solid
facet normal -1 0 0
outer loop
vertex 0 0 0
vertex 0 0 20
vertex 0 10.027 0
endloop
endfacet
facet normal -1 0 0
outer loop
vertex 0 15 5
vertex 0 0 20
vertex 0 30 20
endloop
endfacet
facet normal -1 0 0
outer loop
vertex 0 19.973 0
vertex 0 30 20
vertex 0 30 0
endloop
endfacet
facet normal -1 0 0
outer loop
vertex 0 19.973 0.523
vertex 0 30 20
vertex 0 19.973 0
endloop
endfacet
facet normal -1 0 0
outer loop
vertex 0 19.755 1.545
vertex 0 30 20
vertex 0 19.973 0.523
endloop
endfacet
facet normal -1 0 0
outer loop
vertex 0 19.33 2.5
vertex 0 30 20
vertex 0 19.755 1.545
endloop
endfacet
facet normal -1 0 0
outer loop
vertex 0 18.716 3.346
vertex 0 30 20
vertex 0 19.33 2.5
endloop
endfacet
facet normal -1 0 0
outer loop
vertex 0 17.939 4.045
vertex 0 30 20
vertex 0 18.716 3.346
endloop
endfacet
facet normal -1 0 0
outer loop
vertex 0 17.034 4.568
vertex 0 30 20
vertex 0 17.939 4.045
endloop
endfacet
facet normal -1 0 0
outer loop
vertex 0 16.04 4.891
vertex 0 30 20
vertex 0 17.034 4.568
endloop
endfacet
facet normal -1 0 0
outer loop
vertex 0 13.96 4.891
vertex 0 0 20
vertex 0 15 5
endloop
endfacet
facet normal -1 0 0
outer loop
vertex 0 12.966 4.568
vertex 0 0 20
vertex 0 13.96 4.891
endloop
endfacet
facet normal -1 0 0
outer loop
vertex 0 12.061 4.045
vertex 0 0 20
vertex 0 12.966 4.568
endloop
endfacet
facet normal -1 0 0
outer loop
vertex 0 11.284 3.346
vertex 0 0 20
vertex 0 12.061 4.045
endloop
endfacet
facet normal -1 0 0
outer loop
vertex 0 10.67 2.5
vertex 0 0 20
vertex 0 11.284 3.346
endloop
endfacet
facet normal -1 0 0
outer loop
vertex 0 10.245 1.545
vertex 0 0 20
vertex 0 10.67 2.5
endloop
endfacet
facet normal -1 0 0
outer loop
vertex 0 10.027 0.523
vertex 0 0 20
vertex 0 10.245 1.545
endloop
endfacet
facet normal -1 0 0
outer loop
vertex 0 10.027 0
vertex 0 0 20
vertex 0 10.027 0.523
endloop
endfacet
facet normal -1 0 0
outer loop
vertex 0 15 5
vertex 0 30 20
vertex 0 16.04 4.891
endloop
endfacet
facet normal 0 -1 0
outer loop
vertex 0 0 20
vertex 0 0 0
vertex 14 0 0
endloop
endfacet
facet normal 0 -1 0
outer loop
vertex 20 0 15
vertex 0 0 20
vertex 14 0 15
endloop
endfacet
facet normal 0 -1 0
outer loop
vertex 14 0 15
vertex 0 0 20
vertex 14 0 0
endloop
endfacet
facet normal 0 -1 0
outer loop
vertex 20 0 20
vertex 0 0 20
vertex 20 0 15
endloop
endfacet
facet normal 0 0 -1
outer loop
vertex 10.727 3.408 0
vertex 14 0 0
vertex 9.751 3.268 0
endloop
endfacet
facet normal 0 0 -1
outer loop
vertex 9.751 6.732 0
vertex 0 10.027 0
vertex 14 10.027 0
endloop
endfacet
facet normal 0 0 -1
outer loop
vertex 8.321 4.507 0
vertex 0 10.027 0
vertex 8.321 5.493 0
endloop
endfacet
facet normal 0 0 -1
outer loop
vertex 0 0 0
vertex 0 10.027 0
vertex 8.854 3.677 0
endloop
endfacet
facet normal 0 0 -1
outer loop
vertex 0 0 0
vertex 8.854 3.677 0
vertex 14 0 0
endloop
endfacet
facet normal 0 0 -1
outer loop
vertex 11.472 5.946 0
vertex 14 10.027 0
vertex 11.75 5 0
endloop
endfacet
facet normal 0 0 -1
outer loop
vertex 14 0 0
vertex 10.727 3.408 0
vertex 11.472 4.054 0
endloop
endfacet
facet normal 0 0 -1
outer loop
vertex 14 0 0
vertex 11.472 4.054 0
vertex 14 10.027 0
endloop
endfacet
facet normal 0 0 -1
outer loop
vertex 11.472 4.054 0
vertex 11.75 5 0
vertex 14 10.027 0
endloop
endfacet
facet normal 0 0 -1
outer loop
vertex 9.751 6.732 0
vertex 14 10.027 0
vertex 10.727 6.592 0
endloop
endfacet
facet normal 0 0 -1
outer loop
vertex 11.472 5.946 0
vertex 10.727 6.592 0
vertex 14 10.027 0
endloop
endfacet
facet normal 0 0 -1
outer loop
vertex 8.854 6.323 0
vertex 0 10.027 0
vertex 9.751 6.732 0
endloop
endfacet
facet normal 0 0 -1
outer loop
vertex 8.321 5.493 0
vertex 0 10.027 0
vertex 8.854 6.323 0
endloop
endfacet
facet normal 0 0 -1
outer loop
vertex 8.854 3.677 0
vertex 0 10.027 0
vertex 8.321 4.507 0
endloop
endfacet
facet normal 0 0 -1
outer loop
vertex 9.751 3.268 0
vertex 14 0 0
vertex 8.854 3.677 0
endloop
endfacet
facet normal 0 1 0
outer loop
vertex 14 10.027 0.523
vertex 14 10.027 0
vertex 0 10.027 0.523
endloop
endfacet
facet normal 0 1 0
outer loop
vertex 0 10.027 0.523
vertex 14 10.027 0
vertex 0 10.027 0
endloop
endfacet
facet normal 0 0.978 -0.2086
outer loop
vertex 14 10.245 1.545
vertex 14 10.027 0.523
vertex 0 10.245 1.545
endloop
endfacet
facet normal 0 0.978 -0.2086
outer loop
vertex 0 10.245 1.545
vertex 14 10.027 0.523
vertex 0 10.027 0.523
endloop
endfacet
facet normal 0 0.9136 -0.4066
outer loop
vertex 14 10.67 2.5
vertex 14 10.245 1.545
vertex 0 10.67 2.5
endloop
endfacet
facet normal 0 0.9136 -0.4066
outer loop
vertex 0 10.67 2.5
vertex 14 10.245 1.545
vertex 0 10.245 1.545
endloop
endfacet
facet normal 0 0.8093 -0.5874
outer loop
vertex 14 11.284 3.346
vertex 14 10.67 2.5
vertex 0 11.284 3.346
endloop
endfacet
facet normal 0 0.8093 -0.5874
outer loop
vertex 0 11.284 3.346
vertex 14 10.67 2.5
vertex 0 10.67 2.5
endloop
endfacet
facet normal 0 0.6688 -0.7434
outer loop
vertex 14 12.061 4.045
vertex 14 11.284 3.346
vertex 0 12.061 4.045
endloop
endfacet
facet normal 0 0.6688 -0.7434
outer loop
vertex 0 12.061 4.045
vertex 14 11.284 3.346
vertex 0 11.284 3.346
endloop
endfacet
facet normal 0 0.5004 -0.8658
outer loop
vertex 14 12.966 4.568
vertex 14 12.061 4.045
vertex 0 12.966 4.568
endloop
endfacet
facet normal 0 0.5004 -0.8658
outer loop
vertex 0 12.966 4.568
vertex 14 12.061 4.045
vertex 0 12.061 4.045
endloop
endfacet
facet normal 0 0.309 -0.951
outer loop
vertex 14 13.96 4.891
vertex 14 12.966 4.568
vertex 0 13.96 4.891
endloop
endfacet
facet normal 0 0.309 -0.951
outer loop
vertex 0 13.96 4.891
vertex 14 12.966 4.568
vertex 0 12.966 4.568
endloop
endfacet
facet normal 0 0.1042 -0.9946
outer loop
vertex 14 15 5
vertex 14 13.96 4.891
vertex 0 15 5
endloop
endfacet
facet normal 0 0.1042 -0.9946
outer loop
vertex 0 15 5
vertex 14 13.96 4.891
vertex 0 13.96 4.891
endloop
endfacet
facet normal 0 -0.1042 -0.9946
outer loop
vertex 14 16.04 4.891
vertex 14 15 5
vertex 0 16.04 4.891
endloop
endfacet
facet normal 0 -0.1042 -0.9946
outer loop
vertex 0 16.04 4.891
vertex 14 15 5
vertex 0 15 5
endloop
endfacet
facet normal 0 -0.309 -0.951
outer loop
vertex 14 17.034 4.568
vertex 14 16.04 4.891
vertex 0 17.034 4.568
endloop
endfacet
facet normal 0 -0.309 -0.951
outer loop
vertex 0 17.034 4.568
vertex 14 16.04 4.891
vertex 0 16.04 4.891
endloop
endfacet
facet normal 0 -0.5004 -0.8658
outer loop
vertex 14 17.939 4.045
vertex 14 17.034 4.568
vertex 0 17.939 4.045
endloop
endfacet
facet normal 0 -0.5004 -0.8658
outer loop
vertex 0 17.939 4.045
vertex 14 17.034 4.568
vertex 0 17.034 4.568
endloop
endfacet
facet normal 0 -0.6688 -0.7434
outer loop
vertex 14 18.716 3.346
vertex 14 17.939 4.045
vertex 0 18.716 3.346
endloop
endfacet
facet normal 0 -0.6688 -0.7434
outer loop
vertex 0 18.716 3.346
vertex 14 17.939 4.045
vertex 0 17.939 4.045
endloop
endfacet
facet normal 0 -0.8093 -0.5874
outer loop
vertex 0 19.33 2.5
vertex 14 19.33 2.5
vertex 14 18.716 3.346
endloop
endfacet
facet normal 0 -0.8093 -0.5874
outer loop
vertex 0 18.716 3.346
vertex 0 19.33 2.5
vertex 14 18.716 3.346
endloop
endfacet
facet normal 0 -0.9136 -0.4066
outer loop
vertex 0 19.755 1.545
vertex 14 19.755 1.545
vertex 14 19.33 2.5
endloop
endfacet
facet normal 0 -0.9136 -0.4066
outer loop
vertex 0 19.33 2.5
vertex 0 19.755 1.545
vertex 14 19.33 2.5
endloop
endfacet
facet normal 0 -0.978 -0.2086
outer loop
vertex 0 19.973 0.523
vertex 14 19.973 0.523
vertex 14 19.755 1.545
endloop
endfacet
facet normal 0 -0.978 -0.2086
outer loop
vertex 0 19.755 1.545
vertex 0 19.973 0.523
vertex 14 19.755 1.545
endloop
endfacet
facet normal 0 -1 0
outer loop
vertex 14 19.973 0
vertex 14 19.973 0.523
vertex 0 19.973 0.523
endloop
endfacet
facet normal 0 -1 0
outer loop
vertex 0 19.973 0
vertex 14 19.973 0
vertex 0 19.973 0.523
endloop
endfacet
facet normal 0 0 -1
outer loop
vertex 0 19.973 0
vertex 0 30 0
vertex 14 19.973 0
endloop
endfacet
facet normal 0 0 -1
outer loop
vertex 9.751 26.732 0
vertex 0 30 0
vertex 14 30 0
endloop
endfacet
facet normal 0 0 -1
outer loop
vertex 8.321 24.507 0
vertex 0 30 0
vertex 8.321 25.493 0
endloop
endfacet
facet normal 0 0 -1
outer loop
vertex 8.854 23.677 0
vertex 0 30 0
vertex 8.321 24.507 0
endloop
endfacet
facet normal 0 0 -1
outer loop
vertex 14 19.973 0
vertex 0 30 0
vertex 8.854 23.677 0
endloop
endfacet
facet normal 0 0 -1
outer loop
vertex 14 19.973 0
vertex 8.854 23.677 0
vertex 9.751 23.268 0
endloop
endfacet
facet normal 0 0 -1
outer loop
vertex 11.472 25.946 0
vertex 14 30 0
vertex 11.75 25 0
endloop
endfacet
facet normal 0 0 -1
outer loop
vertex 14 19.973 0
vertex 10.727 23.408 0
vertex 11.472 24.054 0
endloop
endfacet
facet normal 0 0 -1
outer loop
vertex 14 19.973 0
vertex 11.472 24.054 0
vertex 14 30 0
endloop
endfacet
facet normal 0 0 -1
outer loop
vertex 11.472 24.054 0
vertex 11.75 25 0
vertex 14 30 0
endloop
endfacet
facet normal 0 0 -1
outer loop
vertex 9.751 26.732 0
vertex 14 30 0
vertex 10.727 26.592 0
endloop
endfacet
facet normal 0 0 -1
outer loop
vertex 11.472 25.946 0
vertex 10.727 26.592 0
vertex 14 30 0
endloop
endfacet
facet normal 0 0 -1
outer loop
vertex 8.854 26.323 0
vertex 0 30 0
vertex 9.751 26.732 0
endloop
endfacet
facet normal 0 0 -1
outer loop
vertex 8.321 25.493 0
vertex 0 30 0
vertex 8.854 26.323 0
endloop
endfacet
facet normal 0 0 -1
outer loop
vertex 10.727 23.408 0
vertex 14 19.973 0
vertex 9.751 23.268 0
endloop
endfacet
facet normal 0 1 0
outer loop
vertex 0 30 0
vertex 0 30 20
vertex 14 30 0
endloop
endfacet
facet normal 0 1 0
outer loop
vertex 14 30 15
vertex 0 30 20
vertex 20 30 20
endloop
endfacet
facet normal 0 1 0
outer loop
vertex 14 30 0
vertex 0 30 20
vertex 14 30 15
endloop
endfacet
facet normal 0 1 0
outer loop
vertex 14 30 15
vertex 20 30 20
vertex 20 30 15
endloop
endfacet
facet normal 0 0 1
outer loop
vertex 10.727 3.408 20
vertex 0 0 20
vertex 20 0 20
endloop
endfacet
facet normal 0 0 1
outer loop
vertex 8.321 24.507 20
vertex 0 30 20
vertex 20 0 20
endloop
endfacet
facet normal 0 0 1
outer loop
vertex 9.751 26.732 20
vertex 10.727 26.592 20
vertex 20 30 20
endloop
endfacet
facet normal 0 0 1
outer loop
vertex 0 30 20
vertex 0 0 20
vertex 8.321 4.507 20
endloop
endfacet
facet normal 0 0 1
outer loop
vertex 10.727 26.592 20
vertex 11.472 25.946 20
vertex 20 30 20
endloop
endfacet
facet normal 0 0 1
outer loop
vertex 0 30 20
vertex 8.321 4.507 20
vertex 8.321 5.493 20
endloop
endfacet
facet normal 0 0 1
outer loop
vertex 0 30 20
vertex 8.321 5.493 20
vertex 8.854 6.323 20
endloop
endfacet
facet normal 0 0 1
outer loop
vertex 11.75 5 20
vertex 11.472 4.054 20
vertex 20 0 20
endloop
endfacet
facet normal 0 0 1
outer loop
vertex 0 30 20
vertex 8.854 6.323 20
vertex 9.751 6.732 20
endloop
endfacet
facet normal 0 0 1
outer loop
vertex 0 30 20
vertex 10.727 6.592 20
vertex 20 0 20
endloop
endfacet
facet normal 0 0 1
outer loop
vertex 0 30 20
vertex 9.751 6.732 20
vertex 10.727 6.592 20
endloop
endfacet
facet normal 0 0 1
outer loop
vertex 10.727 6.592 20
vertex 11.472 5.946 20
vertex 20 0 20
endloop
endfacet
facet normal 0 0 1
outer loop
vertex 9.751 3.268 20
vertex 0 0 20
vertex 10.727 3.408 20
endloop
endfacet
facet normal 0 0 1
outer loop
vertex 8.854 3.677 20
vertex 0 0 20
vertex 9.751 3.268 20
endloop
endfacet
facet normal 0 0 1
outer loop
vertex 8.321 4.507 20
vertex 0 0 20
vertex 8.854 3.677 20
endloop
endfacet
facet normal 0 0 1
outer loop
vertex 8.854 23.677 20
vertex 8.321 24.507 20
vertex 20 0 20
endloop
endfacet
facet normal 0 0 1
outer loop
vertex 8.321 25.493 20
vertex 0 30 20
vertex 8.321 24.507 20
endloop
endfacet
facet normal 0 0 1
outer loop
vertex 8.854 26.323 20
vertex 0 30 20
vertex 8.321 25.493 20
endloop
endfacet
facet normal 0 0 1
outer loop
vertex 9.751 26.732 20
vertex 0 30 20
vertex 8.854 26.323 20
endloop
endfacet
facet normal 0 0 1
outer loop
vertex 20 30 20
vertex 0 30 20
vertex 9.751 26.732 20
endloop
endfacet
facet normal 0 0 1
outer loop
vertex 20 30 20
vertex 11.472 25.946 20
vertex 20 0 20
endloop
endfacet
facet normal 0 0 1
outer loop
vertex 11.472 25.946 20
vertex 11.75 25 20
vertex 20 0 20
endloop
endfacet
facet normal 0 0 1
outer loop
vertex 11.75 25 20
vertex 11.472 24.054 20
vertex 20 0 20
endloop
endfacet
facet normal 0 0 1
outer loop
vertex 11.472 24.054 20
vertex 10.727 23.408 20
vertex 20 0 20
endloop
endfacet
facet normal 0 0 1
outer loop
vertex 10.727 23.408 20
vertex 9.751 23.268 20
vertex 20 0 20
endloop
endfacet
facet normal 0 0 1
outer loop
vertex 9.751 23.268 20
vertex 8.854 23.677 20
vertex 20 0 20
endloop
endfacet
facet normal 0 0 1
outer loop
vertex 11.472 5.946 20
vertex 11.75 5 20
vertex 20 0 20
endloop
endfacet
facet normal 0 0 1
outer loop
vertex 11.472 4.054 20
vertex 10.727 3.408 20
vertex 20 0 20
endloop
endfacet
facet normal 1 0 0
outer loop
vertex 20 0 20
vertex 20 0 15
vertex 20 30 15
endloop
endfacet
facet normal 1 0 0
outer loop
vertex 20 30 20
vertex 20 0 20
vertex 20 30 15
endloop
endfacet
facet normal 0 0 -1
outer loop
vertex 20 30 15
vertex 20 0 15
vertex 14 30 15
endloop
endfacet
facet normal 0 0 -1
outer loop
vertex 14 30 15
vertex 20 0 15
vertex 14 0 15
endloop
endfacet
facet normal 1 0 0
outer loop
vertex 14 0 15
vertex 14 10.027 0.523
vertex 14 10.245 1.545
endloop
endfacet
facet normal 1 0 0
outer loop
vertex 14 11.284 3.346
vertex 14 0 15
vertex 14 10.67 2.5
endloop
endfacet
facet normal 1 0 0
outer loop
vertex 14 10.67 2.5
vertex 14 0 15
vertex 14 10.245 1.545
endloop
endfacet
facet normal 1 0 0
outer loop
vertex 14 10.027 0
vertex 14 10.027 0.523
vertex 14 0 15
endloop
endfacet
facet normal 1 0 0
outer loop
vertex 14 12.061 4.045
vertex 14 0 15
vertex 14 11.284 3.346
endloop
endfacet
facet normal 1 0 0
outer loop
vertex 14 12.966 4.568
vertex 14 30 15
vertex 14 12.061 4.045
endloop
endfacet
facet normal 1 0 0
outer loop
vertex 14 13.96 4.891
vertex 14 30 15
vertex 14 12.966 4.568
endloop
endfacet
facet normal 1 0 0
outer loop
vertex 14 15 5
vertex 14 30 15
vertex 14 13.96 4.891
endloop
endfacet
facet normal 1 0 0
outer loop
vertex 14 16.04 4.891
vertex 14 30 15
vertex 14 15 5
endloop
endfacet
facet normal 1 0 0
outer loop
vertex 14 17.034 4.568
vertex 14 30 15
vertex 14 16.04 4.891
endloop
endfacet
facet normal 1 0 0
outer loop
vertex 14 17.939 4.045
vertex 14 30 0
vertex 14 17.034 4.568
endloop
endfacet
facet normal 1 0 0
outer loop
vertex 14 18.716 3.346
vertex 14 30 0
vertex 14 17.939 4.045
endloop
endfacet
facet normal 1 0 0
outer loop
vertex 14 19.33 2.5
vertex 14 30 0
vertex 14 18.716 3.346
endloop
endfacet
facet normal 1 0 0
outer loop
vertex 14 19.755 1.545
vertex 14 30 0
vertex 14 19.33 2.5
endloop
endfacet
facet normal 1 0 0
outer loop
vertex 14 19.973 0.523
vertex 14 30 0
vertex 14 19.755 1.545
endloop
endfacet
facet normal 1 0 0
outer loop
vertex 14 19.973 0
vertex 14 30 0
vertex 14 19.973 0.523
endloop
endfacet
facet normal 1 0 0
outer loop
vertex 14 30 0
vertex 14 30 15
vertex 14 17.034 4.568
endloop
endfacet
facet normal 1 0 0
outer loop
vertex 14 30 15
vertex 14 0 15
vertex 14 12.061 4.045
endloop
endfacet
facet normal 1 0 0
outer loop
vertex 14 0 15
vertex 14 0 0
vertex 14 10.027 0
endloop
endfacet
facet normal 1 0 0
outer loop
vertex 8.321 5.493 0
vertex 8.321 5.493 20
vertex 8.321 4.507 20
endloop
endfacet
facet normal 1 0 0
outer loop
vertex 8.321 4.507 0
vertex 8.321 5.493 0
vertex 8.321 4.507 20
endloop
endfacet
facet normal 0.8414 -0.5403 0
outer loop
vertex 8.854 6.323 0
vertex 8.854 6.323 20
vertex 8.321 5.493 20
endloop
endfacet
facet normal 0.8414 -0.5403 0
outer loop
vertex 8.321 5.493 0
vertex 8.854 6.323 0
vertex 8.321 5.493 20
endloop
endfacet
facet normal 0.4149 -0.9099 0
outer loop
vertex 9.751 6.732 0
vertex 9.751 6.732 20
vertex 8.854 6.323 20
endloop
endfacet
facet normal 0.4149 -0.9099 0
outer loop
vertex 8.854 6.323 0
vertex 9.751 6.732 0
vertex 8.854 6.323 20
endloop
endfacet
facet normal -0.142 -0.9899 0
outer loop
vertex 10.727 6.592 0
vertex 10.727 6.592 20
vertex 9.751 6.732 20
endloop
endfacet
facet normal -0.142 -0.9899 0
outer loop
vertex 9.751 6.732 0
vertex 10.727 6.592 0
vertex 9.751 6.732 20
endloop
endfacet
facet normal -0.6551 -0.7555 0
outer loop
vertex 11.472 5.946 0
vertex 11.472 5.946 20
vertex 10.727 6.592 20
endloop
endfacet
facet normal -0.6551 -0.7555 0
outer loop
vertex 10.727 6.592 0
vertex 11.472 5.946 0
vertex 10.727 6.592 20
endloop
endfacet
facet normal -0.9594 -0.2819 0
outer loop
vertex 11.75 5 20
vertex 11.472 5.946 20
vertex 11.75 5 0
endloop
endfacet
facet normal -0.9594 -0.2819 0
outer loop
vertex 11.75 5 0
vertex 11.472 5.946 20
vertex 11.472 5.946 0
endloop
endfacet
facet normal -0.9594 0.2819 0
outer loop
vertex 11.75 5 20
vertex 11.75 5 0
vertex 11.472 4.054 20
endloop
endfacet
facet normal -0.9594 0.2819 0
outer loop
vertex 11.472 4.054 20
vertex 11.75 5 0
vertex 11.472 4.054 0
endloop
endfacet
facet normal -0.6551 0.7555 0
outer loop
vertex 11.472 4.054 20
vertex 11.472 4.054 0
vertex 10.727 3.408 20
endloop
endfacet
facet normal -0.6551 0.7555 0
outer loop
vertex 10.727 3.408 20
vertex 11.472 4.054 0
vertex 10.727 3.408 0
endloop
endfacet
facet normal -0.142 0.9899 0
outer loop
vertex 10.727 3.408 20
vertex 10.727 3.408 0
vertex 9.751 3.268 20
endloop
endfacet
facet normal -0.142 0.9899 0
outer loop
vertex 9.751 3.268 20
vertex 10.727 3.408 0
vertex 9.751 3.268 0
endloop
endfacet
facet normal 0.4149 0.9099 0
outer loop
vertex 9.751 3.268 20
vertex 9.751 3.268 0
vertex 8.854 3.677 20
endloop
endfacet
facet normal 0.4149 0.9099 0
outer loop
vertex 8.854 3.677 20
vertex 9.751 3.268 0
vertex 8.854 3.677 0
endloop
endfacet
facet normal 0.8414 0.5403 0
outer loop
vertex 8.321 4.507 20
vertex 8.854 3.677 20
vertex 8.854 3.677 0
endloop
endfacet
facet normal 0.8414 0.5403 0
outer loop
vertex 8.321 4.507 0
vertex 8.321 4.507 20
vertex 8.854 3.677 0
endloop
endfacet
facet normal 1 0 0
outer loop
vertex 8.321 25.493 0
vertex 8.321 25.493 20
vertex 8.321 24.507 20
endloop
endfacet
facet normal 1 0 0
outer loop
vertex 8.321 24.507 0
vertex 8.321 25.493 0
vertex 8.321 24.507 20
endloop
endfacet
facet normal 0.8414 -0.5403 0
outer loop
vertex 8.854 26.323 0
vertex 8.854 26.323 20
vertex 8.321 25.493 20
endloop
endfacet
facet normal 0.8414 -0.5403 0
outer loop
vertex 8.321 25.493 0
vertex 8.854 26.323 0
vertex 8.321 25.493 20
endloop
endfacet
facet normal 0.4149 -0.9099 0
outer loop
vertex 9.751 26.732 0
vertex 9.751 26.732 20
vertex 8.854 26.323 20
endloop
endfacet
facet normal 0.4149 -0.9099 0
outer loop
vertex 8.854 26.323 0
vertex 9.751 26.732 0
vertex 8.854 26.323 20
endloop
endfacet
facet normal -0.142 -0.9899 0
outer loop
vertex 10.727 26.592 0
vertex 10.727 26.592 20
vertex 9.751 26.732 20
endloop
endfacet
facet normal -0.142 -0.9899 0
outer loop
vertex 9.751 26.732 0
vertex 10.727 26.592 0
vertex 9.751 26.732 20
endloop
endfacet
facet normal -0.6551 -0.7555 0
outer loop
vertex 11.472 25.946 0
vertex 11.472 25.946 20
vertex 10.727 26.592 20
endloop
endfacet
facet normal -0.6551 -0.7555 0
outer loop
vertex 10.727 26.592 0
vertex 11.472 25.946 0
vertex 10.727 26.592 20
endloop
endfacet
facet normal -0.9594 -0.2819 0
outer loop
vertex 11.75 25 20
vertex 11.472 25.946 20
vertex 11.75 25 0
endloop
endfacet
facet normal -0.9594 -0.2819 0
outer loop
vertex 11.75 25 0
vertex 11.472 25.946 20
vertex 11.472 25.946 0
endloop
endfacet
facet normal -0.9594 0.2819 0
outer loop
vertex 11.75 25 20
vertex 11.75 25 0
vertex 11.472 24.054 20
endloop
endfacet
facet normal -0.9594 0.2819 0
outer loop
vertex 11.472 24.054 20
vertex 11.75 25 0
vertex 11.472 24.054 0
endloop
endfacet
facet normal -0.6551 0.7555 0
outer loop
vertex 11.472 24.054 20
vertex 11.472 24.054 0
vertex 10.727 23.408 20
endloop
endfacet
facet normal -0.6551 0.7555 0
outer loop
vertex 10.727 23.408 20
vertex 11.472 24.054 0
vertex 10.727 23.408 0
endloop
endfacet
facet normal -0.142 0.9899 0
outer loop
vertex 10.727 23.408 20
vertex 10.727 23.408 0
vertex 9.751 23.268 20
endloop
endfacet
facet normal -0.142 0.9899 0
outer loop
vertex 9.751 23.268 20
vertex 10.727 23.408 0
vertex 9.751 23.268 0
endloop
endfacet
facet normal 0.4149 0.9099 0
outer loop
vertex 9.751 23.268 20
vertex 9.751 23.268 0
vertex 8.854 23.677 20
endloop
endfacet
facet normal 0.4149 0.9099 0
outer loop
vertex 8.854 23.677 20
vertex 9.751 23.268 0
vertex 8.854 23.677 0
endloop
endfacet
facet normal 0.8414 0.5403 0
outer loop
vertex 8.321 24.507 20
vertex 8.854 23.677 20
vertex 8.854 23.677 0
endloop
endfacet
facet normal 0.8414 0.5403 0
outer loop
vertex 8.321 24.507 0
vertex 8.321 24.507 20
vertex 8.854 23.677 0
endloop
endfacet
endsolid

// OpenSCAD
barwidth = 20;
width_ridge=4;
widthNema17=43;
nema17holeOffset =6;
nema17innerHole=25/2;
nema17Shaft=8/2;
motorThickNess=5;
offsetx =9;
offsety  =9;
barpositionz=30;
rodwidth =8;
nutwidth=14;

height = 30;
width = barwidth;

thickness=20;
spacing_bars = 50;
largeCircle = 70.0;
holeSize=5.5;

holes = [
	[width/2,5,3.5],
	[width/2,height-5,3.5],
];



difference() {
union() {

cube([width,height,thickness],false);


}

translate([width-6,0,-5])
cube([width,height,thickness],false);


	for(i = holes) {
		translate([ i[0],i[1],0])
			cylinder(h=100,r=i[2]/2, center = false, $fs=1);
	}
rotate([0,90,0])
translate([0,height/2,-10])
	cylinder(h=100,r=5, center = false, $fs=1);
}	
